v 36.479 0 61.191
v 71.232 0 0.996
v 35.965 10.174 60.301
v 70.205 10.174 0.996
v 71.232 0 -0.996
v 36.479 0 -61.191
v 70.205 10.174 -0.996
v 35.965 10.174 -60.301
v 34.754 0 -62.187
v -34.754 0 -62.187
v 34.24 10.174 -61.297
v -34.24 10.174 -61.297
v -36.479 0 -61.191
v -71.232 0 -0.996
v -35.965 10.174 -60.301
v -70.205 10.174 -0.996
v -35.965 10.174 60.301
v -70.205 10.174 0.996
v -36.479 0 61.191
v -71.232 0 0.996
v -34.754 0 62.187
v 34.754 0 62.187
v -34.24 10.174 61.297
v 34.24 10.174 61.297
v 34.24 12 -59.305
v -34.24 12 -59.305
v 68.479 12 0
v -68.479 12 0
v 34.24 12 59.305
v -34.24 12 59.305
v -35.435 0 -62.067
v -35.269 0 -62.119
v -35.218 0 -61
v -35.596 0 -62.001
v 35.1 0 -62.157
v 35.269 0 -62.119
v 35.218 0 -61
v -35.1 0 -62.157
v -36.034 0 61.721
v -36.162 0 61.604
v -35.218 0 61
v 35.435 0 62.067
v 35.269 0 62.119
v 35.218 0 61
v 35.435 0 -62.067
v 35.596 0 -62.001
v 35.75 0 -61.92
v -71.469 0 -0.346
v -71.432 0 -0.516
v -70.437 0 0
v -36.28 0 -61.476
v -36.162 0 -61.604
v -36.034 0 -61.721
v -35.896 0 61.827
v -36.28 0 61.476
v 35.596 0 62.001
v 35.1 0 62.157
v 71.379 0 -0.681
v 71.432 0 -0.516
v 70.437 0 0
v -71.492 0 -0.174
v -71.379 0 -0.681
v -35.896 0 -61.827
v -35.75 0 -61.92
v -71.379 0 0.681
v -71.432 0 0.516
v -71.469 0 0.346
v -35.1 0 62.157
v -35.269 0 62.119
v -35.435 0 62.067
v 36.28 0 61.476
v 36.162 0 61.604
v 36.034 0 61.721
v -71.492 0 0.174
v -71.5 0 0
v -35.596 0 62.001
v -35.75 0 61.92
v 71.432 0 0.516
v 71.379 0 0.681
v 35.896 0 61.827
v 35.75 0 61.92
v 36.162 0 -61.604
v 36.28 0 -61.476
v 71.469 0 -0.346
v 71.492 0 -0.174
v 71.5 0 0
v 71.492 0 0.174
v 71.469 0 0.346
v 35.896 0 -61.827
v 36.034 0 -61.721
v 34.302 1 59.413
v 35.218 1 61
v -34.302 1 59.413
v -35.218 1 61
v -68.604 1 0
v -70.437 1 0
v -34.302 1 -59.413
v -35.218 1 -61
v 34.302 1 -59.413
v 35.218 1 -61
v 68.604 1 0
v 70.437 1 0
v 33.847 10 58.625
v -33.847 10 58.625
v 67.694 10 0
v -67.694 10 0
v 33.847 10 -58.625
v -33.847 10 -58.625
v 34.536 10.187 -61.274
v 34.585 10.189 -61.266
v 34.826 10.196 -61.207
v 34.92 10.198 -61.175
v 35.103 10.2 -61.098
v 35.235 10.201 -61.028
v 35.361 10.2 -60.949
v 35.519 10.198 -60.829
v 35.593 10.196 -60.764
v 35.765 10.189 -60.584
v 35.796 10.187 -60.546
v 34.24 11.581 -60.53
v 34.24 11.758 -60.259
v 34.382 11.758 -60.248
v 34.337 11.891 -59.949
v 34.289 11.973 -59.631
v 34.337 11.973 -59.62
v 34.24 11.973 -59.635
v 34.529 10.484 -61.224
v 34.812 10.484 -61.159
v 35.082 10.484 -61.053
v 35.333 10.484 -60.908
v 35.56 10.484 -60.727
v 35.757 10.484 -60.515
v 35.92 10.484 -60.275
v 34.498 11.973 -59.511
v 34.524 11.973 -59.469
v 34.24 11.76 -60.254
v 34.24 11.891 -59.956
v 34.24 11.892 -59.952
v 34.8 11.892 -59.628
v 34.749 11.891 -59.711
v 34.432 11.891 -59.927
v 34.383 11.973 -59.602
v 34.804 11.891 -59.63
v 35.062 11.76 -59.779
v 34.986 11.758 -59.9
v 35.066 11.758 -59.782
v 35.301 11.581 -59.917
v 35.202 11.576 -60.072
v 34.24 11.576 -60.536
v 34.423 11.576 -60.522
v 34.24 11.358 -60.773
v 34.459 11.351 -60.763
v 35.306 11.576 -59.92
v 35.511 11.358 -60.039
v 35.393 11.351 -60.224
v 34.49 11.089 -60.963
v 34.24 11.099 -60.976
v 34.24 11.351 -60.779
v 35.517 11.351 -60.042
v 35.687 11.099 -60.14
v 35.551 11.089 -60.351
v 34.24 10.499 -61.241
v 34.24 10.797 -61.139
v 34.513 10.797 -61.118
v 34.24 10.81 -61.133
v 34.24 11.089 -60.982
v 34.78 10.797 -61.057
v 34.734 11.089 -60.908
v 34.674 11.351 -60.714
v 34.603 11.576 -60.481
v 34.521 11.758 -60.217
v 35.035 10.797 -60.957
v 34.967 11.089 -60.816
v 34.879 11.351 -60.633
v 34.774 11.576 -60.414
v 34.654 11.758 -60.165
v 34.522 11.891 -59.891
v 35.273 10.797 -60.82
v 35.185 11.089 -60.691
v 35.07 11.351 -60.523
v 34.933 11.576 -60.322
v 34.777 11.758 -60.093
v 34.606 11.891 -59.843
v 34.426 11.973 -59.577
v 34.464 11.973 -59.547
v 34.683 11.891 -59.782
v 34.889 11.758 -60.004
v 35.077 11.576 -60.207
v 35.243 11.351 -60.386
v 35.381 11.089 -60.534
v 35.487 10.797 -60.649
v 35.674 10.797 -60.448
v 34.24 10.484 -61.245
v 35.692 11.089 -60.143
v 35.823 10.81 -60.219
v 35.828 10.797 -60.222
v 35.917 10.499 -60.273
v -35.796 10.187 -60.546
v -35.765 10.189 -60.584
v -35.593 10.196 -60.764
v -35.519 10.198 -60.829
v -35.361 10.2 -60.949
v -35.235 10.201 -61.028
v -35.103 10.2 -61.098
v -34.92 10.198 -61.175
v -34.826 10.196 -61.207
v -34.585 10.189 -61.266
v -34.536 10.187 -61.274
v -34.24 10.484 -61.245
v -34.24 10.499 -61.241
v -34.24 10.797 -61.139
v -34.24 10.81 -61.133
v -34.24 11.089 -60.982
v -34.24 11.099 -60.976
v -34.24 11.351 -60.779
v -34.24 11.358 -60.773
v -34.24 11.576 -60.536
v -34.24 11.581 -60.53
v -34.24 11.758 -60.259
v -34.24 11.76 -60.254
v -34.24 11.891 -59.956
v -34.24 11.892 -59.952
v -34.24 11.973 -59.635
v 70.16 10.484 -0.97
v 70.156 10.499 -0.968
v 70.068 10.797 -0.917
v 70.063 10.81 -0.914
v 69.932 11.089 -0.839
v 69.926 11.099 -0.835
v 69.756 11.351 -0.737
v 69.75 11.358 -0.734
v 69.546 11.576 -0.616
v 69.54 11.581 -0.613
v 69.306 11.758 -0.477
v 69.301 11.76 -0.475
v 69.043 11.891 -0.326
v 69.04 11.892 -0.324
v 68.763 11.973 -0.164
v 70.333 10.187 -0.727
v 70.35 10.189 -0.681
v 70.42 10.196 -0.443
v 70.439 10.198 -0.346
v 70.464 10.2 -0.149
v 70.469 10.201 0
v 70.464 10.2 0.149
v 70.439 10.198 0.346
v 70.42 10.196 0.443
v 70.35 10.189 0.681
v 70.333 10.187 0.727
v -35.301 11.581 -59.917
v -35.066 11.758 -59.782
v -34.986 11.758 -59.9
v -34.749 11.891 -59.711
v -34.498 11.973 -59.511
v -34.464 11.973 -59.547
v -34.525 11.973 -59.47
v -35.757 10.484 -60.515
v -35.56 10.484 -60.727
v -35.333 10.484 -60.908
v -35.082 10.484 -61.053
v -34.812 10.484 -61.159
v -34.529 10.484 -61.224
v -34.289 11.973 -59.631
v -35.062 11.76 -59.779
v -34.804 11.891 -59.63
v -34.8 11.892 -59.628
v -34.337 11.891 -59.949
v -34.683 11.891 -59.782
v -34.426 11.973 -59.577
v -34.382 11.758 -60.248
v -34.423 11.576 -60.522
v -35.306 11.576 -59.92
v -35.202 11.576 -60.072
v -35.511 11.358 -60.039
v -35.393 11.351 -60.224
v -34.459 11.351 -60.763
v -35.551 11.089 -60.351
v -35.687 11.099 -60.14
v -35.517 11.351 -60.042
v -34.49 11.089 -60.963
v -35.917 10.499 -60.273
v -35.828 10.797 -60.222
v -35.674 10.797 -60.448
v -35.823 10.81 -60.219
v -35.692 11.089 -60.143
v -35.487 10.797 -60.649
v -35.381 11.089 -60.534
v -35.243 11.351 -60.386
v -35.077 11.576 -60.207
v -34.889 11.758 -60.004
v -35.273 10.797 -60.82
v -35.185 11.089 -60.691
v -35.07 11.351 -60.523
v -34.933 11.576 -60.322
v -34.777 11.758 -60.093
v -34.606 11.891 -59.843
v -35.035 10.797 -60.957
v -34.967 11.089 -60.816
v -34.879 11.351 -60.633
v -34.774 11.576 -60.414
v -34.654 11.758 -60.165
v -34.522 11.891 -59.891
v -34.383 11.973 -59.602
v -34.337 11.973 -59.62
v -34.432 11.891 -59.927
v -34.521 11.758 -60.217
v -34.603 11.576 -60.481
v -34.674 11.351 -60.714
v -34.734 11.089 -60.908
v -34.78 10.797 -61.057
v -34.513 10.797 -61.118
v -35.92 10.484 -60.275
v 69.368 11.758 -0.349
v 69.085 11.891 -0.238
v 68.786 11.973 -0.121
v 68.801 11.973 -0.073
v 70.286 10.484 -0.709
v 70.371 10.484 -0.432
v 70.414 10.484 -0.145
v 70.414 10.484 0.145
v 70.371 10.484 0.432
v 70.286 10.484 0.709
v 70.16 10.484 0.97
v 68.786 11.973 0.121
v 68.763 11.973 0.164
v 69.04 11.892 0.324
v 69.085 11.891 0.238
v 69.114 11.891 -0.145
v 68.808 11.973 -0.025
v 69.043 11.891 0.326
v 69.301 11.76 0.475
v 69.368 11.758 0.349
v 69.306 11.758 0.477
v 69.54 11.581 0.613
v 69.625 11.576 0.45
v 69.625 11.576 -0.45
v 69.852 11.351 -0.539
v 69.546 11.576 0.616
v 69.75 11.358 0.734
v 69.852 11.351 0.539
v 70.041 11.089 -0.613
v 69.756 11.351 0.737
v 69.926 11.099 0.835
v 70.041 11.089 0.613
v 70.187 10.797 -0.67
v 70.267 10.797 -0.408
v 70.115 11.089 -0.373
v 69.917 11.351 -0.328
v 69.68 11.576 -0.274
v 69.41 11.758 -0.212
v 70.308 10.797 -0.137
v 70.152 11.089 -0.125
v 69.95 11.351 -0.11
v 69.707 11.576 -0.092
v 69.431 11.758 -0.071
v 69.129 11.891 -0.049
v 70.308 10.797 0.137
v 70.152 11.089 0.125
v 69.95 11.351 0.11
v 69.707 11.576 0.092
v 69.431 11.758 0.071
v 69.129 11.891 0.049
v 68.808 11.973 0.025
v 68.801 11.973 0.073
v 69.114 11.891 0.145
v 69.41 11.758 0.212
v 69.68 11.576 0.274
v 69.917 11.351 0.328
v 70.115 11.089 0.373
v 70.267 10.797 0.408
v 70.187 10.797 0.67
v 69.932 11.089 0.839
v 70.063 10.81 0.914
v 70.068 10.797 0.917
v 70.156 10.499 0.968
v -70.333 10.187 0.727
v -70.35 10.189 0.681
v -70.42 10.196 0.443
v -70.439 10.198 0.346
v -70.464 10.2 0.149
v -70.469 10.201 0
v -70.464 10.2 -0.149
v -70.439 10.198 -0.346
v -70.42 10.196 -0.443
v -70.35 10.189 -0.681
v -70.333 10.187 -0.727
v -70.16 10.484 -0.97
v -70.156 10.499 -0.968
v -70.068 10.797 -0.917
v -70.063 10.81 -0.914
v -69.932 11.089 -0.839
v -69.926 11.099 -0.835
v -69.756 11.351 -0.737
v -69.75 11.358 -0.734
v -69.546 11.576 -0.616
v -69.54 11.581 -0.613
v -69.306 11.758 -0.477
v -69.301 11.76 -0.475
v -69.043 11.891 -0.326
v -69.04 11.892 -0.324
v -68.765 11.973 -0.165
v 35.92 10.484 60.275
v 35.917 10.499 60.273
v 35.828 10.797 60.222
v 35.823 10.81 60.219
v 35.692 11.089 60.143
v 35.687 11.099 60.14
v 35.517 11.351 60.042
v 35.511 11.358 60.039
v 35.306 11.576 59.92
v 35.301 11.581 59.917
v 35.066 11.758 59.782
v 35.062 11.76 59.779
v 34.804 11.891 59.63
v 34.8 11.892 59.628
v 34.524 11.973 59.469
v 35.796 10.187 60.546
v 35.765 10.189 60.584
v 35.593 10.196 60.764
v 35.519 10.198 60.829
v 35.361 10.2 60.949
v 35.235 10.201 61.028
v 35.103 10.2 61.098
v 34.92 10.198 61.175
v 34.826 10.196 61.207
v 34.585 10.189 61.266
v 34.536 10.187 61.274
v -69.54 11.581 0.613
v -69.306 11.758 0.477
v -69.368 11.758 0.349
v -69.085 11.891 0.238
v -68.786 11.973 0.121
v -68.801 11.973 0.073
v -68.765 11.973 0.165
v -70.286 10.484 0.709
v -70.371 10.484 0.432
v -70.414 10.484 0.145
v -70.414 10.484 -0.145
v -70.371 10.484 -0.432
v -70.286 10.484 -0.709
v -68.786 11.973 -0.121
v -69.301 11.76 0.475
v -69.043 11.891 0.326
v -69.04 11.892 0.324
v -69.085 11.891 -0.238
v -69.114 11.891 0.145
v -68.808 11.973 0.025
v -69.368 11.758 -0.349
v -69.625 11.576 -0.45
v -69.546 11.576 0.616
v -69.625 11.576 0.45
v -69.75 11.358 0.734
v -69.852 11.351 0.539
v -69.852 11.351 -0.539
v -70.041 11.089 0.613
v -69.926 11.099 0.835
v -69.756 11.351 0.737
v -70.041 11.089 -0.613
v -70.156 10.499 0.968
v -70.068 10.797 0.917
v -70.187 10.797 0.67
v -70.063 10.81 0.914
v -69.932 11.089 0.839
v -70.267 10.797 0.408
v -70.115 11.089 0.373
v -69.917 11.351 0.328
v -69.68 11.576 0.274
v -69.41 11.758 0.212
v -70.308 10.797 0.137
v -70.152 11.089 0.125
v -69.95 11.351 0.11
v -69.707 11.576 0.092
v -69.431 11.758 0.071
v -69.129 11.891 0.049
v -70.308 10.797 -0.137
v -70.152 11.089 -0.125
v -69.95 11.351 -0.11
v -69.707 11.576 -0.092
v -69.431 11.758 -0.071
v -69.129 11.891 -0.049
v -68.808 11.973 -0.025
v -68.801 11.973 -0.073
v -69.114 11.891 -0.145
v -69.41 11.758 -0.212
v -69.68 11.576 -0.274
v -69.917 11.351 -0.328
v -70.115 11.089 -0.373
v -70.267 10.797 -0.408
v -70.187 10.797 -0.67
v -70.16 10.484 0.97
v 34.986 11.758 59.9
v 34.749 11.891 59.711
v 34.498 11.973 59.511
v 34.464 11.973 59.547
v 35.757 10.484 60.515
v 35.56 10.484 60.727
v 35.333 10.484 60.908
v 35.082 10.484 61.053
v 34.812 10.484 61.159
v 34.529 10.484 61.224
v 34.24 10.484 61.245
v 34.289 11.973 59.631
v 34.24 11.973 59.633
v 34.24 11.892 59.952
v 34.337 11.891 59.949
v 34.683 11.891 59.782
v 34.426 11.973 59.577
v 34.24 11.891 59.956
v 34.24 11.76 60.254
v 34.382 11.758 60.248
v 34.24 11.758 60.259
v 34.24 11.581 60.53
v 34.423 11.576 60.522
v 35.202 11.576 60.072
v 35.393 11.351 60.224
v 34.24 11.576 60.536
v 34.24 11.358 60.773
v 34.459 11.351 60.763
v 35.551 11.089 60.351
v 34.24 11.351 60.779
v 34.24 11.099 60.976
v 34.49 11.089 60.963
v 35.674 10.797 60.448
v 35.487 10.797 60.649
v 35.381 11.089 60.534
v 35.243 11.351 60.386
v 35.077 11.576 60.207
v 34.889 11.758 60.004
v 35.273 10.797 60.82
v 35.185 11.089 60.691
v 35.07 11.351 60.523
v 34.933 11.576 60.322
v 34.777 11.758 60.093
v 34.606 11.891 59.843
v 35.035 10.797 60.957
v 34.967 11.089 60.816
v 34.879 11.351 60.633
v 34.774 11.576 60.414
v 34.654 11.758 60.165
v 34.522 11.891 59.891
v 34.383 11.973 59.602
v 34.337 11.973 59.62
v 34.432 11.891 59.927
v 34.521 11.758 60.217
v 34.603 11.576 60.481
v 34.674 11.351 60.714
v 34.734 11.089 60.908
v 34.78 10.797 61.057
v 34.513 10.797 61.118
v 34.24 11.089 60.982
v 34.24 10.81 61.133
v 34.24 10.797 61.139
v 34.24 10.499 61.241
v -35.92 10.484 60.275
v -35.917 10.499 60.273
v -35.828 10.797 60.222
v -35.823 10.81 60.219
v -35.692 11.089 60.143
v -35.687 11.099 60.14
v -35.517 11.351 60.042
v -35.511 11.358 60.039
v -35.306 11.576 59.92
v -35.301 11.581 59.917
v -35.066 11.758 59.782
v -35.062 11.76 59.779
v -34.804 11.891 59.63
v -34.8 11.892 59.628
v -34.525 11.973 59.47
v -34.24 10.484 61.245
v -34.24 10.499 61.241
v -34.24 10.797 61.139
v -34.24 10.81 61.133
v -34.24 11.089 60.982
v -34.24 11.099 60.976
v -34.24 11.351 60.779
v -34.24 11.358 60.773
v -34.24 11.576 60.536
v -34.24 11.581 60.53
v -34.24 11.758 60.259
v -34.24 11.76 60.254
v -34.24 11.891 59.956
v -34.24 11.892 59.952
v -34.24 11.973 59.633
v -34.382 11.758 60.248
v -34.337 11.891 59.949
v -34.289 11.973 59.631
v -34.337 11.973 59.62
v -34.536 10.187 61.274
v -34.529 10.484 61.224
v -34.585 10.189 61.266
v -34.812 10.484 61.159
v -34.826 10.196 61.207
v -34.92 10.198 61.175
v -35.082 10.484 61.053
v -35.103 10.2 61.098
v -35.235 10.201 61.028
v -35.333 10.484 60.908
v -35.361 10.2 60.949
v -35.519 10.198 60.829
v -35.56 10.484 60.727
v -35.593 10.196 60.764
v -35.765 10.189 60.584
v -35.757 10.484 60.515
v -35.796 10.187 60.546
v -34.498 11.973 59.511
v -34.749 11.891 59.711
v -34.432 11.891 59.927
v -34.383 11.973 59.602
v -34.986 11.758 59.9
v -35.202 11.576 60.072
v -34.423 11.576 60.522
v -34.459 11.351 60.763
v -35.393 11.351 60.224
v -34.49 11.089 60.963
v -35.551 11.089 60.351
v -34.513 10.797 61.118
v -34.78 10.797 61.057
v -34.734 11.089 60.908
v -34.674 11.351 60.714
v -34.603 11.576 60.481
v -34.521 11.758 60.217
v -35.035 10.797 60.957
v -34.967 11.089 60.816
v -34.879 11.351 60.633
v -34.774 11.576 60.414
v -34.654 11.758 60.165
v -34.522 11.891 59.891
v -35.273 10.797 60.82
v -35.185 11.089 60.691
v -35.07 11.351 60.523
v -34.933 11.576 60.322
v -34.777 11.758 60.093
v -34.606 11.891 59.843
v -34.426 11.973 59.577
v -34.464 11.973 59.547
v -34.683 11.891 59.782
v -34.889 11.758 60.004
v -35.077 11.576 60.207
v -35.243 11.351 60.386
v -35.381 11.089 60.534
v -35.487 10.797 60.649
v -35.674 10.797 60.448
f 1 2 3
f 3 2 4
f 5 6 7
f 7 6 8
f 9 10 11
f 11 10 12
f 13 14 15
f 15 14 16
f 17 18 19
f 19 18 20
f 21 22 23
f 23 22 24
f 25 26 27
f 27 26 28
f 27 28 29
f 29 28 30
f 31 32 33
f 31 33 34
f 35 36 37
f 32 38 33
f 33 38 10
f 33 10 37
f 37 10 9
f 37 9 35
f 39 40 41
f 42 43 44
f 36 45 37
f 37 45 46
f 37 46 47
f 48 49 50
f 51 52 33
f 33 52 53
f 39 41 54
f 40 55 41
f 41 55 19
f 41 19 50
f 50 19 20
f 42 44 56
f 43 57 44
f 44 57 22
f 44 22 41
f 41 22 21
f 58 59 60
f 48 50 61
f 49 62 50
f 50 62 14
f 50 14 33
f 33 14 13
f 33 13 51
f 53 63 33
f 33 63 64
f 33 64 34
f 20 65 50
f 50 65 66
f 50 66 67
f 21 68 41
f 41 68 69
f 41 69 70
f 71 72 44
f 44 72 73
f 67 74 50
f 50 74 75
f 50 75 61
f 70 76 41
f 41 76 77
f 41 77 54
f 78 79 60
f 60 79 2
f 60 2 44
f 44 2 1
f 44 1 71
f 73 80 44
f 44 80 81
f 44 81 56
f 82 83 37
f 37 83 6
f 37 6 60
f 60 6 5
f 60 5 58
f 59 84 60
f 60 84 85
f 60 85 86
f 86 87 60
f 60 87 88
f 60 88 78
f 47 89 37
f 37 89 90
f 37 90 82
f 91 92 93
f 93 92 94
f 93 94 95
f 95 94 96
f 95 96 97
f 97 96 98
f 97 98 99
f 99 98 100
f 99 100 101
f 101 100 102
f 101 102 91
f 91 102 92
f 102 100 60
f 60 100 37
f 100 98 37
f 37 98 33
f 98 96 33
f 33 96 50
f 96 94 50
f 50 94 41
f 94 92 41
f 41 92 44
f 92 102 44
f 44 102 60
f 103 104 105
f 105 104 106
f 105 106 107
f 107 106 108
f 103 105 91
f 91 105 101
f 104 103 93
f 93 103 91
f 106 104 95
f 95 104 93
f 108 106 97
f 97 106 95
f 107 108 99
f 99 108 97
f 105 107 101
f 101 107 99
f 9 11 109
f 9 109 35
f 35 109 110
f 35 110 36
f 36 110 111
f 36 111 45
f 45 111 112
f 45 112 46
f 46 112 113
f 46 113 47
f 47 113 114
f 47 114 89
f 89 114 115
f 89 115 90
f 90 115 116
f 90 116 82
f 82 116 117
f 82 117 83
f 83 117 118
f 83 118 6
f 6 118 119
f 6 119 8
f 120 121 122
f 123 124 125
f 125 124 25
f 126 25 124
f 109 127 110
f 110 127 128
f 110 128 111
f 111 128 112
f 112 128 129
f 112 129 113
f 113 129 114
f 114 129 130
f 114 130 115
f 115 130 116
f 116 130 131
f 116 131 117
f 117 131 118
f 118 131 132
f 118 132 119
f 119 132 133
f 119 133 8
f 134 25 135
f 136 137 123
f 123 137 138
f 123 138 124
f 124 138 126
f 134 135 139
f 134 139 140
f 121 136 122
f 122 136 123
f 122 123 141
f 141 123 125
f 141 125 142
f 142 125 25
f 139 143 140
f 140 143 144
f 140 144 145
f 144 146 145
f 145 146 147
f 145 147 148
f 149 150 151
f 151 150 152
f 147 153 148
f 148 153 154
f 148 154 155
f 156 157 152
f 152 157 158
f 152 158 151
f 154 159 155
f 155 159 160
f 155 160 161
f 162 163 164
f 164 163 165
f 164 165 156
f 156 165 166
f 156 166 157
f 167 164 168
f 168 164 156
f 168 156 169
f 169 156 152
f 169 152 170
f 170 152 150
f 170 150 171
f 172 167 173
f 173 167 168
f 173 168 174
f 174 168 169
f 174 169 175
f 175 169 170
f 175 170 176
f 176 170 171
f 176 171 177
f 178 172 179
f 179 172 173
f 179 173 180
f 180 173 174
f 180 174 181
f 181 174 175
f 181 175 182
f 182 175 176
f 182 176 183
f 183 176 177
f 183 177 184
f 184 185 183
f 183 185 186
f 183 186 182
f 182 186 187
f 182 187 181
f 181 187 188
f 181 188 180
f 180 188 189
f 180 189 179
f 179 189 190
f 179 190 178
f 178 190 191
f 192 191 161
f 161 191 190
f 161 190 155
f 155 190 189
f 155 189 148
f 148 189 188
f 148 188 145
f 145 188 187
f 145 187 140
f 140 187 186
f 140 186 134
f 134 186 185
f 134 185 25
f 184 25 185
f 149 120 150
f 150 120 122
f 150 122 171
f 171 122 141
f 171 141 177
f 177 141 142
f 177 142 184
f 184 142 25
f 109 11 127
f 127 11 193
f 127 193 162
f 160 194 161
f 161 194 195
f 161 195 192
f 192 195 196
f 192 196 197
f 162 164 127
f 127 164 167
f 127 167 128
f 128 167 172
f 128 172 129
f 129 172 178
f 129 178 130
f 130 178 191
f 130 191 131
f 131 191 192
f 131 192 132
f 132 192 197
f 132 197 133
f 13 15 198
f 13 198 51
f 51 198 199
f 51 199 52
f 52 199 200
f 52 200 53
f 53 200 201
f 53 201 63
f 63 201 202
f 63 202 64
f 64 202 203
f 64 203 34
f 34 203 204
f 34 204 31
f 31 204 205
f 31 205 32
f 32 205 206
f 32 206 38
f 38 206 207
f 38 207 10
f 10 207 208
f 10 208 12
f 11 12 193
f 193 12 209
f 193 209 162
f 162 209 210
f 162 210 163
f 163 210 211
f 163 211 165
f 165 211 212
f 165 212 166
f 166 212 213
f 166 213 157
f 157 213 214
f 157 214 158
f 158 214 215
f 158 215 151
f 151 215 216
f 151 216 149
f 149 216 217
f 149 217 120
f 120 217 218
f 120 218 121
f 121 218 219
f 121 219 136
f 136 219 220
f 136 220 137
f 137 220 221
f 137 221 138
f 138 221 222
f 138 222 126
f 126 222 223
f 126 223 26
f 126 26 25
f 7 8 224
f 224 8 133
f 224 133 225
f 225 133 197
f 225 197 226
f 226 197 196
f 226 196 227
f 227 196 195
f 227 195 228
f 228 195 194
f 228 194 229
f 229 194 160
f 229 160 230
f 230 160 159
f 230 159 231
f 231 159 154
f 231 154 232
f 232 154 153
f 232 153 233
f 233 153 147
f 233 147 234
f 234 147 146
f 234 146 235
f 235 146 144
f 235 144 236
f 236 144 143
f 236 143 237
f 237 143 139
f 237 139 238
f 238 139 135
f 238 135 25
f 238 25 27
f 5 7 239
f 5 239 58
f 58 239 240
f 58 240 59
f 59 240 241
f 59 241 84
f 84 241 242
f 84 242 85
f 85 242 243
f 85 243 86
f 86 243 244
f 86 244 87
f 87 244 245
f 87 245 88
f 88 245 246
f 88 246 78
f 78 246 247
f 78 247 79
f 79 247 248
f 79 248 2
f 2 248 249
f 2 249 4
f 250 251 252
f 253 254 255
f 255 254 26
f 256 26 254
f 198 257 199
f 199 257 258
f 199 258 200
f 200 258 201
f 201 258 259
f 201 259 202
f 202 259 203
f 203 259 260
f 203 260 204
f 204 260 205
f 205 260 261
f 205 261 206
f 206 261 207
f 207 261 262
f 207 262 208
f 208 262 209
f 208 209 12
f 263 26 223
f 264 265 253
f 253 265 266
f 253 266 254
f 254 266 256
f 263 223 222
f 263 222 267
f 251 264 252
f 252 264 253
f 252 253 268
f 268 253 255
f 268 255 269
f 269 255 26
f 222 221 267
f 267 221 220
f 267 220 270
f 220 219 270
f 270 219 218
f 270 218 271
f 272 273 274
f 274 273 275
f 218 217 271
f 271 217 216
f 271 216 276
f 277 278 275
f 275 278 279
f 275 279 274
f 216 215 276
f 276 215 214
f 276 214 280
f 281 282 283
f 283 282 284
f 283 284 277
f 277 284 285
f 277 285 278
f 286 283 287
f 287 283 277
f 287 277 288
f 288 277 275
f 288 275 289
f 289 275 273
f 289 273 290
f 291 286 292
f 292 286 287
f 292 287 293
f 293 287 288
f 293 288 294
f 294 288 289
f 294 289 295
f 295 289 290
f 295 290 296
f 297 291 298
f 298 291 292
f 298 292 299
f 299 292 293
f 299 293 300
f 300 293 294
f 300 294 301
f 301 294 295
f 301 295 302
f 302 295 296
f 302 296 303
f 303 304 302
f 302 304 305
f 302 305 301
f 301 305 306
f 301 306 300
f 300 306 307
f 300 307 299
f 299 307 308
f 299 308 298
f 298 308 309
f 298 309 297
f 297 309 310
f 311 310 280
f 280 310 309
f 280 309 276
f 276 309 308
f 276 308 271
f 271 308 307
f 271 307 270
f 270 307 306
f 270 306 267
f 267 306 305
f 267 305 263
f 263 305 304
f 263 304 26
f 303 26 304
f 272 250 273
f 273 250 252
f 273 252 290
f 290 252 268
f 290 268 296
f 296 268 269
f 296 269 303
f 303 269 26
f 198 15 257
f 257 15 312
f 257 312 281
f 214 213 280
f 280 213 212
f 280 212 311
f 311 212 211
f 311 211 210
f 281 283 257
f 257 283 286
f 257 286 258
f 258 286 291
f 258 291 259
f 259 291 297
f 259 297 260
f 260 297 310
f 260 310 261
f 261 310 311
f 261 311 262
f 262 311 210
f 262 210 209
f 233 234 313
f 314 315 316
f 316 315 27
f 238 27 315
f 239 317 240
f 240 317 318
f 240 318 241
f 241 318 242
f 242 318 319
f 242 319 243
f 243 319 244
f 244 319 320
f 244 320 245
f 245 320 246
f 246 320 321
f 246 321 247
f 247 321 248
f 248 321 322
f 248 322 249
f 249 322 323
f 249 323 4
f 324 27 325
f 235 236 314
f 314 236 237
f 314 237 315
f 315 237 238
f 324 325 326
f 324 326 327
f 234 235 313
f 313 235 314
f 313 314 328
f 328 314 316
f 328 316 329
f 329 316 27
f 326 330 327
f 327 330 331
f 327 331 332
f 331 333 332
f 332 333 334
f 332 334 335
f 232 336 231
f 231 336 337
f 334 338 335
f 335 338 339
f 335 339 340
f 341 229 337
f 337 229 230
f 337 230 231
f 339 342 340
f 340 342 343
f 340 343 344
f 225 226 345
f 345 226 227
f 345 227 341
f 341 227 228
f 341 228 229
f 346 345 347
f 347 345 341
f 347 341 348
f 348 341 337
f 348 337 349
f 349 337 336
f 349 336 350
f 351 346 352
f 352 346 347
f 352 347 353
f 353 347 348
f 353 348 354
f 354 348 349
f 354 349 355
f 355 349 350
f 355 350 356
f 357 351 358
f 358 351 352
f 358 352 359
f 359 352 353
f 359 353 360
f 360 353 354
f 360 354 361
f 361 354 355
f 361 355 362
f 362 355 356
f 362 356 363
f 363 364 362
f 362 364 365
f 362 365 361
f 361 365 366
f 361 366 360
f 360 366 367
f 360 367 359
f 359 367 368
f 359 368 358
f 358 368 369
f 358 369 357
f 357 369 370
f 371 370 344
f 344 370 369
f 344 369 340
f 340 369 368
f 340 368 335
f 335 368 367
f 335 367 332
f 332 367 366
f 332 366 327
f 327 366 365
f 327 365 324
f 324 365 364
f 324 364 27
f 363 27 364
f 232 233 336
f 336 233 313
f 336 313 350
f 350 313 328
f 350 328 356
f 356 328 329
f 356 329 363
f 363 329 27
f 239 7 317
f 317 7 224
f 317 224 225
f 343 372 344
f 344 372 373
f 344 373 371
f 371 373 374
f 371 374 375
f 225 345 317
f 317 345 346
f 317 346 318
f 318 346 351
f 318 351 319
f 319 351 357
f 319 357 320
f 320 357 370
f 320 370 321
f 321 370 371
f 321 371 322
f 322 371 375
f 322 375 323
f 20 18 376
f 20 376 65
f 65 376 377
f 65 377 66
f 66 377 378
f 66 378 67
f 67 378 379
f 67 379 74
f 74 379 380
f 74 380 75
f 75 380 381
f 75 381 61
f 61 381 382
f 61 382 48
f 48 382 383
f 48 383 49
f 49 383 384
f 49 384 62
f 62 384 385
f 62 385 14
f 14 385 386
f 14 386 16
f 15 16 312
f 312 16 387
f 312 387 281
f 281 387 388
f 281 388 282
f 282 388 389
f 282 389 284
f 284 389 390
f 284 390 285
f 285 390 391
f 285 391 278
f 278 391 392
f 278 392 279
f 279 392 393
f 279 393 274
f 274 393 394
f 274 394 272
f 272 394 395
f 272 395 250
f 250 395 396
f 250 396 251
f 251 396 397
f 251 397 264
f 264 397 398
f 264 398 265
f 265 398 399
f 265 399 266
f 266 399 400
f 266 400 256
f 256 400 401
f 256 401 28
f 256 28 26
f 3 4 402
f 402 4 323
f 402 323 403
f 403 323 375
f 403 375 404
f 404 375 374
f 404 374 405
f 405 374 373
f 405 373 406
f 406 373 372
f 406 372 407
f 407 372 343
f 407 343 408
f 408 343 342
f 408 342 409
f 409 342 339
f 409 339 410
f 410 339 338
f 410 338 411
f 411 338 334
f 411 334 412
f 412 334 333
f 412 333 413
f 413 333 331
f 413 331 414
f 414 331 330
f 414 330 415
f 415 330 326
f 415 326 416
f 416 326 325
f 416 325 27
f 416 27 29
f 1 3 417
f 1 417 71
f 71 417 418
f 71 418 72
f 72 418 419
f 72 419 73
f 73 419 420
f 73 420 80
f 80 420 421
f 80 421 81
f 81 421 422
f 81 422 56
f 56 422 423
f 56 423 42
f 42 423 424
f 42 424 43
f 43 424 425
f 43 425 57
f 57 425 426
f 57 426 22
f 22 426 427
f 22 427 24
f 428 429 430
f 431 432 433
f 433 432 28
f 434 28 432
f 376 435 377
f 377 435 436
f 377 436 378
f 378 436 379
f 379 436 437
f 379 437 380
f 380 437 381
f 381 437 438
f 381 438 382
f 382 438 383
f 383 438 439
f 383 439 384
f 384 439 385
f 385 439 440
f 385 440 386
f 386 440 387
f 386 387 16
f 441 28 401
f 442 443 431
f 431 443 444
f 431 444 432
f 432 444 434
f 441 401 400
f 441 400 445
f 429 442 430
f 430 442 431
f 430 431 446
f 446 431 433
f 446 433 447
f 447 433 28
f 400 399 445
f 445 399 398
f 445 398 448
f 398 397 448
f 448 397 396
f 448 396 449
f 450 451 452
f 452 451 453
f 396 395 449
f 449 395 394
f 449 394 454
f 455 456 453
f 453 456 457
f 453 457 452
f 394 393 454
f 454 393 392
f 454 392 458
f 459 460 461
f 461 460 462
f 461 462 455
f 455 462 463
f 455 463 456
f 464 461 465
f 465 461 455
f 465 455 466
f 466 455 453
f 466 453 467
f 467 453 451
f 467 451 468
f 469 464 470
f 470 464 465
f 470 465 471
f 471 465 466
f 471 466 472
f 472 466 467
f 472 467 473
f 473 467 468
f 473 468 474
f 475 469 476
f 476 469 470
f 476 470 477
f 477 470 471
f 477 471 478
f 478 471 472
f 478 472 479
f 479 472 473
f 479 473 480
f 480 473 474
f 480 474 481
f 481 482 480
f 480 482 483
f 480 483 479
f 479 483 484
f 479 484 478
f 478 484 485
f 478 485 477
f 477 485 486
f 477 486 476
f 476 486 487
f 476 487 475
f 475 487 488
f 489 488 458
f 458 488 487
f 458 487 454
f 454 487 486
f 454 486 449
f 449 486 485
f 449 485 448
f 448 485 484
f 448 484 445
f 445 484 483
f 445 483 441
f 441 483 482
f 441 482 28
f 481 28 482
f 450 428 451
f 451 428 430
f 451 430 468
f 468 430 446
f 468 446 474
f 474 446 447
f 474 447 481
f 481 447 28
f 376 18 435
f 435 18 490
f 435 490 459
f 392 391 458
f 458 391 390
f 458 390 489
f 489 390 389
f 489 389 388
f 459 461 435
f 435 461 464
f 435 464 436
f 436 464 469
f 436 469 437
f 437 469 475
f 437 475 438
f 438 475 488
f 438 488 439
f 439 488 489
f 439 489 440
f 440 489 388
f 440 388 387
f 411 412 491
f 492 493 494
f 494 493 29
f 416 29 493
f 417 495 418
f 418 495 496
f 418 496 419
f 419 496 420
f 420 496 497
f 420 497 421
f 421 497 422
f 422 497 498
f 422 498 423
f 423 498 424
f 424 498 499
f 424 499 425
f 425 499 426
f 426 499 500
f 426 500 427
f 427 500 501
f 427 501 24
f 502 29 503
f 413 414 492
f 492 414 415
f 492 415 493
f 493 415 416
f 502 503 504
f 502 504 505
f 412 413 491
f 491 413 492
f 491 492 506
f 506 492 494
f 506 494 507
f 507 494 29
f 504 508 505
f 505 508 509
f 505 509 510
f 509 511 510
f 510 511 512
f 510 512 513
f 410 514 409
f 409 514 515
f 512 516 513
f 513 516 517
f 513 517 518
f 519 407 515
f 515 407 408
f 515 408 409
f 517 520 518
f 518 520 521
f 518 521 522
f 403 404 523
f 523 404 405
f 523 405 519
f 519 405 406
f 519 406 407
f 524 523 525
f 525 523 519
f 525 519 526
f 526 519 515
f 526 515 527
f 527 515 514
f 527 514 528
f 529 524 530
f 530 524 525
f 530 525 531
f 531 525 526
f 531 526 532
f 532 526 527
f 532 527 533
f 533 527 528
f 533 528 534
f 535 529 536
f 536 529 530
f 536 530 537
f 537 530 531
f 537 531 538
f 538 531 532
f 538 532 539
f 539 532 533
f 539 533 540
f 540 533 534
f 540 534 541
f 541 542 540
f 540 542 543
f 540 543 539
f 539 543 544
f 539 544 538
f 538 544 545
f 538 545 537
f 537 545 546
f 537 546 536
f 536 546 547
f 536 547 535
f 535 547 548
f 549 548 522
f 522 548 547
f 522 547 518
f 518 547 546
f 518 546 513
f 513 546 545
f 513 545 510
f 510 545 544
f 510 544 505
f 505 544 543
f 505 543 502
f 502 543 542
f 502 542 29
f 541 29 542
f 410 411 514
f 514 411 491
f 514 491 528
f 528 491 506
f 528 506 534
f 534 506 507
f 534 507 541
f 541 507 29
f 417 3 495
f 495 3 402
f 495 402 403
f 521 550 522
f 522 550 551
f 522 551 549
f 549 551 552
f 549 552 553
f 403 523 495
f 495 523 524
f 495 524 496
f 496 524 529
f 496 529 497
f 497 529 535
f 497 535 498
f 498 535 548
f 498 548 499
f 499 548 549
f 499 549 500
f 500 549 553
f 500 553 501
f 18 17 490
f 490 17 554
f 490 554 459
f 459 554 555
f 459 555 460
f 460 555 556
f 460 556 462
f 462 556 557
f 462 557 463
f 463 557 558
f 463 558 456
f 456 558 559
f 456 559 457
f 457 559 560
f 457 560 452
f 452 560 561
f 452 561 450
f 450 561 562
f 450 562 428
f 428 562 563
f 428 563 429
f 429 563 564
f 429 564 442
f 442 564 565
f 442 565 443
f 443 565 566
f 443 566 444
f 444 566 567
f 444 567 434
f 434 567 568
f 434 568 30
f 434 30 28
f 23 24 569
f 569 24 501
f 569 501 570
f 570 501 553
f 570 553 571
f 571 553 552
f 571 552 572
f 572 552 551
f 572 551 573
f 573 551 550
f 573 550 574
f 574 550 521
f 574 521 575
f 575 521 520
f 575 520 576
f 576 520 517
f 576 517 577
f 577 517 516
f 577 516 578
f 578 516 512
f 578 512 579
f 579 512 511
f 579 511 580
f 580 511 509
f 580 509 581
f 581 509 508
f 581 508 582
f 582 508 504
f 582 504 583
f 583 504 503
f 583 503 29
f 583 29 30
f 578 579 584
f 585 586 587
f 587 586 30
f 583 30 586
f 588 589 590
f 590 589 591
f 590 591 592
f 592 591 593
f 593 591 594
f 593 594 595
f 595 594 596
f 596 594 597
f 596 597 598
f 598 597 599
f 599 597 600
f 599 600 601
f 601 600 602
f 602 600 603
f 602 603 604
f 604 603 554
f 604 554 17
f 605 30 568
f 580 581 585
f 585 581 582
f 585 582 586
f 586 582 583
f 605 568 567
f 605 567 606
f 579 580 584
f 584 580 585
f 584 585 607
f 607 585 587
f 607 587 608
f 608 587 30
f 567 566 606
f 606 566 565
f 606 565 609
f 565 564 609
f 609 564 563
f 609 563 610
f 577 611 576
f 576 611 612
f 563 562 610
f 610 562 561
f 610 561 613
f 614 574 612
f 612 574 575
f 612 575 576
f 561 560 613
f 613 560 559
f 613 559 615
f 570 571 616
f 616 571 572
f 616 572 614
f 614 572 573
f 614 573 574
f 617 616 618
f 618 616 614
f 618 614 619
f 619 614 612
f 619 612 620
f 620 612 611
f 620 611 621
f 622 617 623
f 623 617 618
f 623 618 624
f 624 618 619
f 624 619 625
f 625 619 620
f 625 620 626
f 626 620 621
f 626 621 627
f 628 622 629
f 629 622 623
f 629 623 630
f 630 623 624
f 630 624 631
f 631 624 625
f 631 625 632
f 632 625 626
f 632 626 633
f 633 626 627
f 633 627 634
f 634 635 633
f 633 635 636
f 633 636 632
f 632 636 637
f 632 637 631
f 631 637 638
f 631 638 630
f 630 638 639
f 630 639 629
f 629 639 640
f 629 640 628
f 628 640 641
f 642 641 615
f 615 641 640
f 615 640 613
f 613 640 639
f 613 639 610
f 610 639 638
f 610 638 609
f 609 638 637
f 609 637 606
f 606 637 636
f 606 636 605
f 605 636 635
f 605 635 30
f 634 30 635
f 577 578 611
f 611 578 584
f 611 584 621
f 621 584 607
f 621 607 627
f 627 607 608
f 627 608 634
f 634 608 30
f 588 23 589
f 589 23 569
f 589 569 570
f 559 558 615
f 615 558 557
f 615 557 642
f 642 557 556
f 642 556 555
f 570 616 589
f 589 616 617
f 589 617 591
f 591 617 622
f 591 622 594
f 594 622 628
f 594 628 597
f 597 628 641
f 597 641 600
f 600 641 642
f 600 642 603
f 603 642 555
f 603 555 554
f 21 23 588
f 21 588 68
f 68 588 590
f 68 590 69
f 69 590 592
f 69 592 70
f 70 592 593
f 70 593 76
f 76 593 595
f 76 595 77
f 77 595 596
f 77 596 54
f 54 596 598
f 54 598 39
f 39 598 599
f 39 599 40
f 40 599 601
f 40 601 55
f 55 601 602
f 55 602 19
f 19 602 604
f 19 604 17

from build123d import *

# Parameters (mm, degrees)
BOSS_EXTRUDE1_DEPTH = 12
BOSS_EXTRUDE1_TAPER = 5
CUT_EXTRUDE1_DEPTH  = 10
CUT_EXTRUDE1_DRAFT  = -5
CUT_EXTRUDE2_DEPTH  = 1
FILLET1_R           = 2


with BuildPart() as part:
    # Sketch1 → Boss-Extrude1 (new body)
    with BuildSketch(Plane(origin=(0, 0, 0), x_dir=(1, 0, 0), z_dir=(0, 1, 0))):
        Polygon((71.807612477, 0), (35.903806238, 62.18721659), (-35.903806238, 62.18721659), (-71.807612477, 0), (-35.903806238, -62.18721659), (35.903806238, -62.18721659), align=None)
    extrude(amount=BOSS_EXTRUDE1_DEPTH, taper=BOSS_EXTRUDE1_TAPER)


with BuildPart() as cut_extrude1_tool:
    # Sketch2 → Cut-Extrude1 (with draft: the straight prism first)
    with BuildSketch(Plane.XZ):
        Polygon((68.704682034, 0), (34.352341017, 59.5), (-34.352341017, 59.5), (-68.704682034, 0), (-34.352341017, -59.5), (34.352341017, -59.5), align=None)
    extrude(amount=-CUT_EXTRUDE1_DEPTH)
    # Cut-Extrude1: the draft: its side faces are tilted about the plane it starts from
    cut_extrude1_sides = [cut_extrude1_tool.faces().sort_by_distance(p)[0] for p in [
        (51.528511525, 5, 29.75),
        (0, 5, 59.5),
        (-51.528511525, 5, 29.75),
        (-51.528511525, 5, -29.75),
        (0, 5, -59.5),
        (51.528511525, 5, -29.75),
    ]]
    draft(cut_extrude1_sides, Plane.XZ, CUT_EXTRUDE1_DRAFT)


with BuildPart() as part_1:
    add(part.part)

    # Cut-Extrude1: cut by cut_extrude1_tool
    add(cut_extrude1_tool.part, mode=Mode.SUBTRACT)

    # Sketch3 → Cut-Extrude2 (cut)
    with BuildSketch(Plane.XZ):
        Polygon((70.436732841, 0), (35.218366421, 61), (-35.218366421, 61), (-70.436732841, 0), (-35.218366421, -61), (35.218366421, -61), align=None)
    extrude(amount=-CUT_EXTRUDE2_DEPTH, mode=Mode.SUBTRACT)

    # Fillet1
    fillet1_edges = [part_1.edges().sort_by_distance(p)[0] for p in [
        (35.600736618, 6, 61.662284609),
        (-35.600736618, 6, 61.662284609),
        (-71.201473236, 6, 0),
        (-35.600736618, 6, -61.662284609),
        (35.600736618, 6, -61.662284609),
        (71.201473236, 6, 0),
        (0, 12, -61.137352628),
        (-52.946500496, 12, -30.568676314),
        (-52.946500496, 12, 30.568676314),
        (0, 12, 61.137352628),
        (52.946500496, 12, 30.568676314),
        (52.946500496, 12, -30.568676314),
    ]]
    fillet(fillet1_edges, radius=FILLET1_R)


solid = part_1.part
